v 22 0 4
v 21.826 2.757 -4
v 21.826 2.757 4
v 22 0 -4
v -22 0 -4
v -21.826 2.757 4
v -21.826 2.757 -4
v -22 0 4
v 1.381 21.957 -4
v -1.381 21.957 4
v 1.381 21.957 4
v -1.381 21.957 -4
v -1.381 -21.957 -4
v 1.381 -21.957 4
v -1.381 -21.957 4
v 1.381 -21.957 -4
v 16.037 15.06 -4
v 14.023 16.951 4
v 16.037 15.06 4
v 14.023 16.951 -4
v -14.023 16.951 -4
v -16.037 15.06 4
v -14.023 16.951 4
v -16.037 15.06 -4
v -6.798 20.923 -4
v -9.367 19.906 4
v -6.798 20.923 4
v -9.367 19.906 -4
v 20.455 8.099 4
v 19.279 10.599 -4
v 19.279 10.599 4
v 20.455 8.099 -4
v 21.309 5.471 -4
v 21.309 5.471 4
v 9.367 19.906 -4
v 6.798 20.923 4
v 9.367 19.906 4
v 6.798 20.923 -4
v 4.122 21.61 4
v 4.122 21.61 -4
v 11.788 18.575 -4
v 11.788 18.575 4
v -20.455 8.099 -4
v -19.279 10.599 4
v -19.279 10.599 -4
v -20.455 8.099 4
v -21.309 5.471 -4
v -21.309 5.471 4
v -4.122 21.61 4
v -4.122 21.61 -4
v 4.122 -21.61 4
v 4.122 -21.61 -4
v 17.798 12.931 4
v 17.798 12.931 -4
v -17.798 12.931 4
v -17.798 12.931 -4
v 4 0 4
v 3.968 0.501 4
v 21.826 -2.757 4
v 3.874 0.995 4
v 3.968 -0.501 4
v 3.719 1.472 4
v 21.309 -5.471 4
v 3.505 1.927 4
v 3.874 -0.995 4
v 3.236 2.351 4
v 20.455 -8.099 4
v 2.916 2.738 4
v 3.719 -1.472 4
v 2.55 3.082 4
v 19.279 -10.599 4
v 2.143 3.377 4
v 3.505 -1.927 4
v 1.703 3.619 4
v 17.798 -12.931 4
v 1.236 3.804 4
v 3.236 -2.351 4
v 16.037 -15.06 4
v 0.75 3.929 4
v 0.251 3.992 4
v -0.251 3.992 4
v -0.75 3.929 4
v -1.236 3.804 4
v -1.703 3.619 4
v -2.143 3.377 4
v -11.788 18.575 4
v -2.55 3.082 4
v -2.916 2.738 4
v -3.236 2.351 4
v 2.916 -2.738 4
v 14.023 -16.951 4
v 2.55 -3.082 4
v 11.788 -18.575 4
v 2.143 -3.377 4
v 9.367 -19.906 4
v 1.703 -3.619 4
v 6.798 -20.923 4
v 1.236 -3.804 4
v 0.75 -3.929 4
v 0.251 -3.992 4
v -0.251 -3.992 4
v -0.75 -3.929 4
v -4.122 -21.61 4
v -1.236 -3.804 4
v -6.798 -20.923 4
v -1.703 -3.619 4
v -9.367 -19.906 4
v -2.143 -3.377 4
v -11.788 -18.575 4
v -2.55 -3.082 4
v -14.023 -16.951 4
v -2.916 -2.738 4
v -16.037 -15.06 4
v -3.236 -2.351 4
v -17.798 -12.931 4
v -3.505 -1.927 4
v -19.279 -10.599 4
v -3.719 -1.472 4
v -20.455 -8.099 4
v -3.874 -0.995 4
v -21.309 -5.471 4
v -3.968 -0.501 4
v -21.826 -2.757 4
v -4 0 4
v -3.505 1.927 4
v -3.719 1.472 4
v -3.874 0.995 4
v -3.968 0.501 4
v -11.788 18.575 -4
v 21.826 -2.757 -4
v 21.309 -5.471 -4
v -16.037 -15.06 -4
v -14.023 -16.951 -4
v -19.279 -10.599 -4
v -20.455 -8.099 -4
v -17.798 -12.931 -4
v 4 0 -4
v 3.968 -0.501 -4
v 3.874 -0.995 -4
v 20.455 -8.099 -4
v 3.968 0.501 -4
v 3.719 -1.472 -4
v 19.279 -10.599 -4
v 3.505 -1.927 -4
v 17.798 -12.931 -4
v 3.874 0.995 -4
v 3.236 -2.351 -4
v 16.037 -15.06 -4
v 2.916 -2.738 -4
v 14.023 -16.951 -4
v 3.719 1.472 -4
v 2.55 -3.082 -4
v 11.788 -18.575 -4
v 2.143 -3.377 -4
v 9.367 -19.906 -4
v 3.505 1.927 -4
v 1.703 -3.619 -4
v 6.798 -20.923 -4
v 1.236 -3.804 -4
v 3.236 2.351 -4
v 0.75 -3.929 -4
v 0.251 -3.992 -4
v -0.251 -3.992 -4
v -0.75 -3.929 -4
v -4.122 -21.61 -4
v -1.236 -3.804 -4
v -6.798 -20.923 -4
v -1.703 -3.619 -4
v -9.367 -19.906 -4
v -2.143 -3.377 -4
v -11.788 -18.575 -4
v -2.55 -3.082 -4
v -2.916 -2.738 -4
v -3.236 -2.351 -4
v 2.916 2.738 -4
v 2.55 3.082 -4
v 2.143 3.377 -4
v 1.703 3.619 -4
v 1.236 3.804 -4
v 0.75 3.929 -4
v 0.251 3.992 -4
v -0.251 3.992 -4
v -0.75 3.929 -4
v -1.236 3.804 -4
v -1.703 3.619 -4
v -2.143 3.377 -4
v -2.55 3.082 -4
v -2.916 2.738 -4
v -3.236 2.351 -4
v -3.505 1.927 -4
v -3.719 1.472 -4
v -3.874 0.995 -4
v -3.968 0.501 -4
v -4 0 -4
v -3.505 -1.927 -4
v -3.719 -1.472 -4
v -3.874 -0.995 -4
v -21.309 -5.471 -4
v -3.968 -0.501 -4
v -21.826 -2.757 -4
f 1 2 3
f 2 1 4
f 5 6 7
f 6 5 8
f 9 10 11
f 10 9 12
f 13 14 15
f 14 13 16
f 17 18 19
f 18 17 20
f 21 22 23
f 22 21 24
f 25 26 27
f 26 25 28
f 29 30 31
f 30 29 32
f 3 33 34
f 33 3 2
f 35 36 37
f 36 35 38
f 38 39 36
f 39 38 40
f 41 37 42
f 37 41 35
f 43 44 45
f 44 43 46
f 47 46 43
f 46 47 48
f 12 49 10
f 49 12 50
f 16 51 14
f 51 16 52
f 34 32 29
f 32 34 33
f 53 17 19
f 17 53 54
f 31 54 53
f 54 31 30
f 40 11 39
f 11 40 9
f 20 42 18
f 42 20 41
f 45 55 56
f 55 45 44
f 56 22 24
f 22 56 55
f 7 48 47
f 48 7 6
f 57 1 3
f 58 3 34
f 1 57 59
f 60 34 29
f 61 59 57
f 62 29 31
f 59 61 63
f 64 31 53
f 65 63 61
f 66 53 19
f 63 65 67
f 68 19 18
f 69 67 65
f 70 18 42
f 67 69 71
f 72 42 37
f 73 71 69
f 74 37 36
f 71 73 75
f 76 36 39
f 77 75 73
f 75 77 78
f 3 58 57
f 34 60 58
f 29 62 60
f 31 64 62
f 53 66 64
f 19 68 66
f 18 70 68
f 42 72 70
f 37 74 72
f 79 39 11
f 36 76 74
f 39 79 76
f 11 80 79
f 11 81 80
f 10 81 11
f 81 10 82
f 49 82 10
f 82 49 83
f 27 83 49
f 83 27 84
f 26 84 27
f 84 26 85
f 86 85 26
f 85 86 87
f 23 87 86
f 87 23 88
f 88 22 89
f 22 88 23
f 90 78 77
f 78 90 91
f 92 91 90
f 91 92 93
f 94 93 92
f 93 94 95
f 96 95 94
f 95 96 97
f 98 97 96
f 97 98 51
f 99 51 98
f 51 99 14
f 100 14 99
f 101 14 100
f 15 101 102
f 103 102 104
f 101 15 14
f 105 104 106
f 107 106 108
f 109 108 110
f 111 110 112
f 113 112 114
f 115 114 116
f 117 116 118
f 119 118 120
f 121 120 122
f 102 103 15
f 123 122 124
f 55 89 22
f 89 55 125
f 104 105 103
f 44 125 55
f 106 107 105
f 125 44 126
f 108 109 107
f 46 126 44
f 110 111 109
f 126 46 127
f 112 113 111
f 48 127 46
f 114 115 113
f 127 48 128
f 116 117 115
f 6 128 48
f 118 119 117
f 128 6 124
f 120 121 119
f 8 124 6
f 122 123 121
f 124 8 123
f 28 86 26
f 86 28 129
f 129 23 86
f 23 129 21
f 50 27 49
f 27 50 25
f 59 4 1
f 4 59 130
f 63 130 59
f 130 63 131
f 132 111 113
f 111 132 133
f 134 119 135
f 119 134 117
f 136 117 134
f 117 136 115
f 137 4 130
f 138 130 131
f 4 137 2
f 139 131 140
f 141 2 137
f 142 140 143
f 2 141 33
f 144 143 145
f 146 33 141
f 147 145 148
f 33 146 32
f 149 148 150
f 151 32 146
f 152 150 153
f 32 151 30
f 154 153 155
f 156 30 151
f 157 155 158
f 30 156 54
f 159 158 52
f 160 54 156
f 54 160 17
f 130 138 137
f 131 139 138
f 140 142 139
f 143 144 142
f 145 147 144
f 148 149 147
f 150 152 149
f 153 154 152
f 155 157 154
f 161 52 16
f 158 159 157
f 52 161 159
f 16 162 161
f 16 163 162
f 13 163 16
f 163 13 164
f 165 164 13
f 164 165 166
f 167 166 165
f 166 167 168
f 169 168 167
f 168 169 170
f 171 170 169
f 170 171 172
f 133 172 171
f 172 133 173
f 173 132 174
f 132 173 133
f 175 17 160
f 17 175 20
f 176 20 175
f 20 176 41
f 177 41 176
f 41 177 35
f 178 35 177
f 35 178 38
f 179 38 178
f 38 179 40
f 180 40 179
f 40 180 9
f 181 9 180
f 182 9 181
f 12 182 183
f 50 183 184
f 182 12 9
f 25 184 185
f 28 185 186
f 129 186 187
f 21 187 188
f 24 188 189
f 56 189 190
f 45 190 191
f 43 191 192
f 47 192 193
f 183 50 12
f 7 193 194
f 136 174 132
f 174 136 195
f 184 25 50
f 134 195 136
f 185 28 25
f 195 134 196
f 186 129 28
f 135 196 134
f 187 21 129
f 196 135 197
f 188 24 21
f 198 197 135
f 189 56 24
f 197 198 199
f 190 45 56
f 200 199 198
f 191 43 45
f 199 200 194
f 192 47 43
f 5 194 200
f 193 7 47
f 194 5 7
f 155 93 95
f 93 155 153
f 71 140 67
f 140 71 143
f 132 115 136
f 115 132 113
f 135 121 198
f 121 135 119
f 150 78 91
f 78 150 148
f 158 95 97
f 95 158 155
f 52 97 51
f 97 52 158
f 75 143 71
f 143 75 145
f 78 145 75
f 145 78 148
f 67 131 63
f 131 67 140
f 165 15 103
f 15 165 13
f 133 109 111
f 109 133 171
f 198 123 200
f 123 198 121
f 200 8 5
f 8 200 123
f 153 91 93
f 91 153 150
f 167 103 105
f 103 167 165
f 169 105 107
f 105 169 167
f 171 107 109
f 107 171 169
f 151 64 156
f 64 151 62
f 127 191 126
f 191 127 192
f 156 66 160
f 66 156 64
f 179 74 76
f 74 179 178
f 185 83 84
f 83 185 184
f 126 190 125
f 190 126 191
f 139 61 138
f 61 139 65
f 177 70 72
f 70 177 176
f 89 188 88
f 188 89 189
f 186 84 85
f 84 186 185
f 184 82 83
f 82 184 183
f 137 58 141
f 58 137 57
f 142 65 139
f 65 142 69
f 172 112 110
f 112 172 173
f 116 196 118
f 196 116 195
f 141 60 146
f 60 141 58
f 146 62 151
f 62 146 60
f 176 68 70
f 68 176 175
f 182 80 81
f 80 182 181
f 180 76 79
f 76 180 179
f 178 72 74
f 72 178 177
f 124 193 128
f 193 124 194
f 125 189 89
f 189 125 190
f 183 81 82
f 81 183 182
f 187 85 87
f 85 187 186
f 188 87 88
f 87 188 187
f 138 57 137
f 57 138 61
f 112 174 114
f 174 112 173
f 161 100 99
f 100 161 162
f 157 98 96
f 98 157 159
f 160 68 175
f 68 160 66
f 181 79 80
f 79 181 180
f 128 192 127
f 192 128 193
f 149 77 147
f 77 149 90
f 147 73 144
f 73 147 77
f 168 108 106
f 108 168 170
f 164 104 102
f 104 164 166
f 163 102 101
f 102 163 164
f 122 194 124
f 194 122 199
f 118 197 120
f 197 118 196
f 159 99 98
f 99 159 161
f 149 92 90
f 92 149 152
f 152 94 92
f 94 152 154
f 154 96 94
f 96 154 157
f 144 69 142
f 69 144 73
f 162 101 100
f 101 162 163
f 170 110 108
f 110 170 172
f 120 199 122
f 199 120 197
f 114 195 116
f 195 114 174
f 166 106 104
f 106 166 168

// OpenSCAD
$fn = 50;


difference() {
	union() {
		translate(v = [0, 0, -4.0000000000]) {
			cylinder(h = 8, r = 22.0000000000);
		}
	}
	union() {
		translate(v = [0, 0, -100.0000000000]) {
			cylinder(h = 200, r = 4);
		}
	}
}
